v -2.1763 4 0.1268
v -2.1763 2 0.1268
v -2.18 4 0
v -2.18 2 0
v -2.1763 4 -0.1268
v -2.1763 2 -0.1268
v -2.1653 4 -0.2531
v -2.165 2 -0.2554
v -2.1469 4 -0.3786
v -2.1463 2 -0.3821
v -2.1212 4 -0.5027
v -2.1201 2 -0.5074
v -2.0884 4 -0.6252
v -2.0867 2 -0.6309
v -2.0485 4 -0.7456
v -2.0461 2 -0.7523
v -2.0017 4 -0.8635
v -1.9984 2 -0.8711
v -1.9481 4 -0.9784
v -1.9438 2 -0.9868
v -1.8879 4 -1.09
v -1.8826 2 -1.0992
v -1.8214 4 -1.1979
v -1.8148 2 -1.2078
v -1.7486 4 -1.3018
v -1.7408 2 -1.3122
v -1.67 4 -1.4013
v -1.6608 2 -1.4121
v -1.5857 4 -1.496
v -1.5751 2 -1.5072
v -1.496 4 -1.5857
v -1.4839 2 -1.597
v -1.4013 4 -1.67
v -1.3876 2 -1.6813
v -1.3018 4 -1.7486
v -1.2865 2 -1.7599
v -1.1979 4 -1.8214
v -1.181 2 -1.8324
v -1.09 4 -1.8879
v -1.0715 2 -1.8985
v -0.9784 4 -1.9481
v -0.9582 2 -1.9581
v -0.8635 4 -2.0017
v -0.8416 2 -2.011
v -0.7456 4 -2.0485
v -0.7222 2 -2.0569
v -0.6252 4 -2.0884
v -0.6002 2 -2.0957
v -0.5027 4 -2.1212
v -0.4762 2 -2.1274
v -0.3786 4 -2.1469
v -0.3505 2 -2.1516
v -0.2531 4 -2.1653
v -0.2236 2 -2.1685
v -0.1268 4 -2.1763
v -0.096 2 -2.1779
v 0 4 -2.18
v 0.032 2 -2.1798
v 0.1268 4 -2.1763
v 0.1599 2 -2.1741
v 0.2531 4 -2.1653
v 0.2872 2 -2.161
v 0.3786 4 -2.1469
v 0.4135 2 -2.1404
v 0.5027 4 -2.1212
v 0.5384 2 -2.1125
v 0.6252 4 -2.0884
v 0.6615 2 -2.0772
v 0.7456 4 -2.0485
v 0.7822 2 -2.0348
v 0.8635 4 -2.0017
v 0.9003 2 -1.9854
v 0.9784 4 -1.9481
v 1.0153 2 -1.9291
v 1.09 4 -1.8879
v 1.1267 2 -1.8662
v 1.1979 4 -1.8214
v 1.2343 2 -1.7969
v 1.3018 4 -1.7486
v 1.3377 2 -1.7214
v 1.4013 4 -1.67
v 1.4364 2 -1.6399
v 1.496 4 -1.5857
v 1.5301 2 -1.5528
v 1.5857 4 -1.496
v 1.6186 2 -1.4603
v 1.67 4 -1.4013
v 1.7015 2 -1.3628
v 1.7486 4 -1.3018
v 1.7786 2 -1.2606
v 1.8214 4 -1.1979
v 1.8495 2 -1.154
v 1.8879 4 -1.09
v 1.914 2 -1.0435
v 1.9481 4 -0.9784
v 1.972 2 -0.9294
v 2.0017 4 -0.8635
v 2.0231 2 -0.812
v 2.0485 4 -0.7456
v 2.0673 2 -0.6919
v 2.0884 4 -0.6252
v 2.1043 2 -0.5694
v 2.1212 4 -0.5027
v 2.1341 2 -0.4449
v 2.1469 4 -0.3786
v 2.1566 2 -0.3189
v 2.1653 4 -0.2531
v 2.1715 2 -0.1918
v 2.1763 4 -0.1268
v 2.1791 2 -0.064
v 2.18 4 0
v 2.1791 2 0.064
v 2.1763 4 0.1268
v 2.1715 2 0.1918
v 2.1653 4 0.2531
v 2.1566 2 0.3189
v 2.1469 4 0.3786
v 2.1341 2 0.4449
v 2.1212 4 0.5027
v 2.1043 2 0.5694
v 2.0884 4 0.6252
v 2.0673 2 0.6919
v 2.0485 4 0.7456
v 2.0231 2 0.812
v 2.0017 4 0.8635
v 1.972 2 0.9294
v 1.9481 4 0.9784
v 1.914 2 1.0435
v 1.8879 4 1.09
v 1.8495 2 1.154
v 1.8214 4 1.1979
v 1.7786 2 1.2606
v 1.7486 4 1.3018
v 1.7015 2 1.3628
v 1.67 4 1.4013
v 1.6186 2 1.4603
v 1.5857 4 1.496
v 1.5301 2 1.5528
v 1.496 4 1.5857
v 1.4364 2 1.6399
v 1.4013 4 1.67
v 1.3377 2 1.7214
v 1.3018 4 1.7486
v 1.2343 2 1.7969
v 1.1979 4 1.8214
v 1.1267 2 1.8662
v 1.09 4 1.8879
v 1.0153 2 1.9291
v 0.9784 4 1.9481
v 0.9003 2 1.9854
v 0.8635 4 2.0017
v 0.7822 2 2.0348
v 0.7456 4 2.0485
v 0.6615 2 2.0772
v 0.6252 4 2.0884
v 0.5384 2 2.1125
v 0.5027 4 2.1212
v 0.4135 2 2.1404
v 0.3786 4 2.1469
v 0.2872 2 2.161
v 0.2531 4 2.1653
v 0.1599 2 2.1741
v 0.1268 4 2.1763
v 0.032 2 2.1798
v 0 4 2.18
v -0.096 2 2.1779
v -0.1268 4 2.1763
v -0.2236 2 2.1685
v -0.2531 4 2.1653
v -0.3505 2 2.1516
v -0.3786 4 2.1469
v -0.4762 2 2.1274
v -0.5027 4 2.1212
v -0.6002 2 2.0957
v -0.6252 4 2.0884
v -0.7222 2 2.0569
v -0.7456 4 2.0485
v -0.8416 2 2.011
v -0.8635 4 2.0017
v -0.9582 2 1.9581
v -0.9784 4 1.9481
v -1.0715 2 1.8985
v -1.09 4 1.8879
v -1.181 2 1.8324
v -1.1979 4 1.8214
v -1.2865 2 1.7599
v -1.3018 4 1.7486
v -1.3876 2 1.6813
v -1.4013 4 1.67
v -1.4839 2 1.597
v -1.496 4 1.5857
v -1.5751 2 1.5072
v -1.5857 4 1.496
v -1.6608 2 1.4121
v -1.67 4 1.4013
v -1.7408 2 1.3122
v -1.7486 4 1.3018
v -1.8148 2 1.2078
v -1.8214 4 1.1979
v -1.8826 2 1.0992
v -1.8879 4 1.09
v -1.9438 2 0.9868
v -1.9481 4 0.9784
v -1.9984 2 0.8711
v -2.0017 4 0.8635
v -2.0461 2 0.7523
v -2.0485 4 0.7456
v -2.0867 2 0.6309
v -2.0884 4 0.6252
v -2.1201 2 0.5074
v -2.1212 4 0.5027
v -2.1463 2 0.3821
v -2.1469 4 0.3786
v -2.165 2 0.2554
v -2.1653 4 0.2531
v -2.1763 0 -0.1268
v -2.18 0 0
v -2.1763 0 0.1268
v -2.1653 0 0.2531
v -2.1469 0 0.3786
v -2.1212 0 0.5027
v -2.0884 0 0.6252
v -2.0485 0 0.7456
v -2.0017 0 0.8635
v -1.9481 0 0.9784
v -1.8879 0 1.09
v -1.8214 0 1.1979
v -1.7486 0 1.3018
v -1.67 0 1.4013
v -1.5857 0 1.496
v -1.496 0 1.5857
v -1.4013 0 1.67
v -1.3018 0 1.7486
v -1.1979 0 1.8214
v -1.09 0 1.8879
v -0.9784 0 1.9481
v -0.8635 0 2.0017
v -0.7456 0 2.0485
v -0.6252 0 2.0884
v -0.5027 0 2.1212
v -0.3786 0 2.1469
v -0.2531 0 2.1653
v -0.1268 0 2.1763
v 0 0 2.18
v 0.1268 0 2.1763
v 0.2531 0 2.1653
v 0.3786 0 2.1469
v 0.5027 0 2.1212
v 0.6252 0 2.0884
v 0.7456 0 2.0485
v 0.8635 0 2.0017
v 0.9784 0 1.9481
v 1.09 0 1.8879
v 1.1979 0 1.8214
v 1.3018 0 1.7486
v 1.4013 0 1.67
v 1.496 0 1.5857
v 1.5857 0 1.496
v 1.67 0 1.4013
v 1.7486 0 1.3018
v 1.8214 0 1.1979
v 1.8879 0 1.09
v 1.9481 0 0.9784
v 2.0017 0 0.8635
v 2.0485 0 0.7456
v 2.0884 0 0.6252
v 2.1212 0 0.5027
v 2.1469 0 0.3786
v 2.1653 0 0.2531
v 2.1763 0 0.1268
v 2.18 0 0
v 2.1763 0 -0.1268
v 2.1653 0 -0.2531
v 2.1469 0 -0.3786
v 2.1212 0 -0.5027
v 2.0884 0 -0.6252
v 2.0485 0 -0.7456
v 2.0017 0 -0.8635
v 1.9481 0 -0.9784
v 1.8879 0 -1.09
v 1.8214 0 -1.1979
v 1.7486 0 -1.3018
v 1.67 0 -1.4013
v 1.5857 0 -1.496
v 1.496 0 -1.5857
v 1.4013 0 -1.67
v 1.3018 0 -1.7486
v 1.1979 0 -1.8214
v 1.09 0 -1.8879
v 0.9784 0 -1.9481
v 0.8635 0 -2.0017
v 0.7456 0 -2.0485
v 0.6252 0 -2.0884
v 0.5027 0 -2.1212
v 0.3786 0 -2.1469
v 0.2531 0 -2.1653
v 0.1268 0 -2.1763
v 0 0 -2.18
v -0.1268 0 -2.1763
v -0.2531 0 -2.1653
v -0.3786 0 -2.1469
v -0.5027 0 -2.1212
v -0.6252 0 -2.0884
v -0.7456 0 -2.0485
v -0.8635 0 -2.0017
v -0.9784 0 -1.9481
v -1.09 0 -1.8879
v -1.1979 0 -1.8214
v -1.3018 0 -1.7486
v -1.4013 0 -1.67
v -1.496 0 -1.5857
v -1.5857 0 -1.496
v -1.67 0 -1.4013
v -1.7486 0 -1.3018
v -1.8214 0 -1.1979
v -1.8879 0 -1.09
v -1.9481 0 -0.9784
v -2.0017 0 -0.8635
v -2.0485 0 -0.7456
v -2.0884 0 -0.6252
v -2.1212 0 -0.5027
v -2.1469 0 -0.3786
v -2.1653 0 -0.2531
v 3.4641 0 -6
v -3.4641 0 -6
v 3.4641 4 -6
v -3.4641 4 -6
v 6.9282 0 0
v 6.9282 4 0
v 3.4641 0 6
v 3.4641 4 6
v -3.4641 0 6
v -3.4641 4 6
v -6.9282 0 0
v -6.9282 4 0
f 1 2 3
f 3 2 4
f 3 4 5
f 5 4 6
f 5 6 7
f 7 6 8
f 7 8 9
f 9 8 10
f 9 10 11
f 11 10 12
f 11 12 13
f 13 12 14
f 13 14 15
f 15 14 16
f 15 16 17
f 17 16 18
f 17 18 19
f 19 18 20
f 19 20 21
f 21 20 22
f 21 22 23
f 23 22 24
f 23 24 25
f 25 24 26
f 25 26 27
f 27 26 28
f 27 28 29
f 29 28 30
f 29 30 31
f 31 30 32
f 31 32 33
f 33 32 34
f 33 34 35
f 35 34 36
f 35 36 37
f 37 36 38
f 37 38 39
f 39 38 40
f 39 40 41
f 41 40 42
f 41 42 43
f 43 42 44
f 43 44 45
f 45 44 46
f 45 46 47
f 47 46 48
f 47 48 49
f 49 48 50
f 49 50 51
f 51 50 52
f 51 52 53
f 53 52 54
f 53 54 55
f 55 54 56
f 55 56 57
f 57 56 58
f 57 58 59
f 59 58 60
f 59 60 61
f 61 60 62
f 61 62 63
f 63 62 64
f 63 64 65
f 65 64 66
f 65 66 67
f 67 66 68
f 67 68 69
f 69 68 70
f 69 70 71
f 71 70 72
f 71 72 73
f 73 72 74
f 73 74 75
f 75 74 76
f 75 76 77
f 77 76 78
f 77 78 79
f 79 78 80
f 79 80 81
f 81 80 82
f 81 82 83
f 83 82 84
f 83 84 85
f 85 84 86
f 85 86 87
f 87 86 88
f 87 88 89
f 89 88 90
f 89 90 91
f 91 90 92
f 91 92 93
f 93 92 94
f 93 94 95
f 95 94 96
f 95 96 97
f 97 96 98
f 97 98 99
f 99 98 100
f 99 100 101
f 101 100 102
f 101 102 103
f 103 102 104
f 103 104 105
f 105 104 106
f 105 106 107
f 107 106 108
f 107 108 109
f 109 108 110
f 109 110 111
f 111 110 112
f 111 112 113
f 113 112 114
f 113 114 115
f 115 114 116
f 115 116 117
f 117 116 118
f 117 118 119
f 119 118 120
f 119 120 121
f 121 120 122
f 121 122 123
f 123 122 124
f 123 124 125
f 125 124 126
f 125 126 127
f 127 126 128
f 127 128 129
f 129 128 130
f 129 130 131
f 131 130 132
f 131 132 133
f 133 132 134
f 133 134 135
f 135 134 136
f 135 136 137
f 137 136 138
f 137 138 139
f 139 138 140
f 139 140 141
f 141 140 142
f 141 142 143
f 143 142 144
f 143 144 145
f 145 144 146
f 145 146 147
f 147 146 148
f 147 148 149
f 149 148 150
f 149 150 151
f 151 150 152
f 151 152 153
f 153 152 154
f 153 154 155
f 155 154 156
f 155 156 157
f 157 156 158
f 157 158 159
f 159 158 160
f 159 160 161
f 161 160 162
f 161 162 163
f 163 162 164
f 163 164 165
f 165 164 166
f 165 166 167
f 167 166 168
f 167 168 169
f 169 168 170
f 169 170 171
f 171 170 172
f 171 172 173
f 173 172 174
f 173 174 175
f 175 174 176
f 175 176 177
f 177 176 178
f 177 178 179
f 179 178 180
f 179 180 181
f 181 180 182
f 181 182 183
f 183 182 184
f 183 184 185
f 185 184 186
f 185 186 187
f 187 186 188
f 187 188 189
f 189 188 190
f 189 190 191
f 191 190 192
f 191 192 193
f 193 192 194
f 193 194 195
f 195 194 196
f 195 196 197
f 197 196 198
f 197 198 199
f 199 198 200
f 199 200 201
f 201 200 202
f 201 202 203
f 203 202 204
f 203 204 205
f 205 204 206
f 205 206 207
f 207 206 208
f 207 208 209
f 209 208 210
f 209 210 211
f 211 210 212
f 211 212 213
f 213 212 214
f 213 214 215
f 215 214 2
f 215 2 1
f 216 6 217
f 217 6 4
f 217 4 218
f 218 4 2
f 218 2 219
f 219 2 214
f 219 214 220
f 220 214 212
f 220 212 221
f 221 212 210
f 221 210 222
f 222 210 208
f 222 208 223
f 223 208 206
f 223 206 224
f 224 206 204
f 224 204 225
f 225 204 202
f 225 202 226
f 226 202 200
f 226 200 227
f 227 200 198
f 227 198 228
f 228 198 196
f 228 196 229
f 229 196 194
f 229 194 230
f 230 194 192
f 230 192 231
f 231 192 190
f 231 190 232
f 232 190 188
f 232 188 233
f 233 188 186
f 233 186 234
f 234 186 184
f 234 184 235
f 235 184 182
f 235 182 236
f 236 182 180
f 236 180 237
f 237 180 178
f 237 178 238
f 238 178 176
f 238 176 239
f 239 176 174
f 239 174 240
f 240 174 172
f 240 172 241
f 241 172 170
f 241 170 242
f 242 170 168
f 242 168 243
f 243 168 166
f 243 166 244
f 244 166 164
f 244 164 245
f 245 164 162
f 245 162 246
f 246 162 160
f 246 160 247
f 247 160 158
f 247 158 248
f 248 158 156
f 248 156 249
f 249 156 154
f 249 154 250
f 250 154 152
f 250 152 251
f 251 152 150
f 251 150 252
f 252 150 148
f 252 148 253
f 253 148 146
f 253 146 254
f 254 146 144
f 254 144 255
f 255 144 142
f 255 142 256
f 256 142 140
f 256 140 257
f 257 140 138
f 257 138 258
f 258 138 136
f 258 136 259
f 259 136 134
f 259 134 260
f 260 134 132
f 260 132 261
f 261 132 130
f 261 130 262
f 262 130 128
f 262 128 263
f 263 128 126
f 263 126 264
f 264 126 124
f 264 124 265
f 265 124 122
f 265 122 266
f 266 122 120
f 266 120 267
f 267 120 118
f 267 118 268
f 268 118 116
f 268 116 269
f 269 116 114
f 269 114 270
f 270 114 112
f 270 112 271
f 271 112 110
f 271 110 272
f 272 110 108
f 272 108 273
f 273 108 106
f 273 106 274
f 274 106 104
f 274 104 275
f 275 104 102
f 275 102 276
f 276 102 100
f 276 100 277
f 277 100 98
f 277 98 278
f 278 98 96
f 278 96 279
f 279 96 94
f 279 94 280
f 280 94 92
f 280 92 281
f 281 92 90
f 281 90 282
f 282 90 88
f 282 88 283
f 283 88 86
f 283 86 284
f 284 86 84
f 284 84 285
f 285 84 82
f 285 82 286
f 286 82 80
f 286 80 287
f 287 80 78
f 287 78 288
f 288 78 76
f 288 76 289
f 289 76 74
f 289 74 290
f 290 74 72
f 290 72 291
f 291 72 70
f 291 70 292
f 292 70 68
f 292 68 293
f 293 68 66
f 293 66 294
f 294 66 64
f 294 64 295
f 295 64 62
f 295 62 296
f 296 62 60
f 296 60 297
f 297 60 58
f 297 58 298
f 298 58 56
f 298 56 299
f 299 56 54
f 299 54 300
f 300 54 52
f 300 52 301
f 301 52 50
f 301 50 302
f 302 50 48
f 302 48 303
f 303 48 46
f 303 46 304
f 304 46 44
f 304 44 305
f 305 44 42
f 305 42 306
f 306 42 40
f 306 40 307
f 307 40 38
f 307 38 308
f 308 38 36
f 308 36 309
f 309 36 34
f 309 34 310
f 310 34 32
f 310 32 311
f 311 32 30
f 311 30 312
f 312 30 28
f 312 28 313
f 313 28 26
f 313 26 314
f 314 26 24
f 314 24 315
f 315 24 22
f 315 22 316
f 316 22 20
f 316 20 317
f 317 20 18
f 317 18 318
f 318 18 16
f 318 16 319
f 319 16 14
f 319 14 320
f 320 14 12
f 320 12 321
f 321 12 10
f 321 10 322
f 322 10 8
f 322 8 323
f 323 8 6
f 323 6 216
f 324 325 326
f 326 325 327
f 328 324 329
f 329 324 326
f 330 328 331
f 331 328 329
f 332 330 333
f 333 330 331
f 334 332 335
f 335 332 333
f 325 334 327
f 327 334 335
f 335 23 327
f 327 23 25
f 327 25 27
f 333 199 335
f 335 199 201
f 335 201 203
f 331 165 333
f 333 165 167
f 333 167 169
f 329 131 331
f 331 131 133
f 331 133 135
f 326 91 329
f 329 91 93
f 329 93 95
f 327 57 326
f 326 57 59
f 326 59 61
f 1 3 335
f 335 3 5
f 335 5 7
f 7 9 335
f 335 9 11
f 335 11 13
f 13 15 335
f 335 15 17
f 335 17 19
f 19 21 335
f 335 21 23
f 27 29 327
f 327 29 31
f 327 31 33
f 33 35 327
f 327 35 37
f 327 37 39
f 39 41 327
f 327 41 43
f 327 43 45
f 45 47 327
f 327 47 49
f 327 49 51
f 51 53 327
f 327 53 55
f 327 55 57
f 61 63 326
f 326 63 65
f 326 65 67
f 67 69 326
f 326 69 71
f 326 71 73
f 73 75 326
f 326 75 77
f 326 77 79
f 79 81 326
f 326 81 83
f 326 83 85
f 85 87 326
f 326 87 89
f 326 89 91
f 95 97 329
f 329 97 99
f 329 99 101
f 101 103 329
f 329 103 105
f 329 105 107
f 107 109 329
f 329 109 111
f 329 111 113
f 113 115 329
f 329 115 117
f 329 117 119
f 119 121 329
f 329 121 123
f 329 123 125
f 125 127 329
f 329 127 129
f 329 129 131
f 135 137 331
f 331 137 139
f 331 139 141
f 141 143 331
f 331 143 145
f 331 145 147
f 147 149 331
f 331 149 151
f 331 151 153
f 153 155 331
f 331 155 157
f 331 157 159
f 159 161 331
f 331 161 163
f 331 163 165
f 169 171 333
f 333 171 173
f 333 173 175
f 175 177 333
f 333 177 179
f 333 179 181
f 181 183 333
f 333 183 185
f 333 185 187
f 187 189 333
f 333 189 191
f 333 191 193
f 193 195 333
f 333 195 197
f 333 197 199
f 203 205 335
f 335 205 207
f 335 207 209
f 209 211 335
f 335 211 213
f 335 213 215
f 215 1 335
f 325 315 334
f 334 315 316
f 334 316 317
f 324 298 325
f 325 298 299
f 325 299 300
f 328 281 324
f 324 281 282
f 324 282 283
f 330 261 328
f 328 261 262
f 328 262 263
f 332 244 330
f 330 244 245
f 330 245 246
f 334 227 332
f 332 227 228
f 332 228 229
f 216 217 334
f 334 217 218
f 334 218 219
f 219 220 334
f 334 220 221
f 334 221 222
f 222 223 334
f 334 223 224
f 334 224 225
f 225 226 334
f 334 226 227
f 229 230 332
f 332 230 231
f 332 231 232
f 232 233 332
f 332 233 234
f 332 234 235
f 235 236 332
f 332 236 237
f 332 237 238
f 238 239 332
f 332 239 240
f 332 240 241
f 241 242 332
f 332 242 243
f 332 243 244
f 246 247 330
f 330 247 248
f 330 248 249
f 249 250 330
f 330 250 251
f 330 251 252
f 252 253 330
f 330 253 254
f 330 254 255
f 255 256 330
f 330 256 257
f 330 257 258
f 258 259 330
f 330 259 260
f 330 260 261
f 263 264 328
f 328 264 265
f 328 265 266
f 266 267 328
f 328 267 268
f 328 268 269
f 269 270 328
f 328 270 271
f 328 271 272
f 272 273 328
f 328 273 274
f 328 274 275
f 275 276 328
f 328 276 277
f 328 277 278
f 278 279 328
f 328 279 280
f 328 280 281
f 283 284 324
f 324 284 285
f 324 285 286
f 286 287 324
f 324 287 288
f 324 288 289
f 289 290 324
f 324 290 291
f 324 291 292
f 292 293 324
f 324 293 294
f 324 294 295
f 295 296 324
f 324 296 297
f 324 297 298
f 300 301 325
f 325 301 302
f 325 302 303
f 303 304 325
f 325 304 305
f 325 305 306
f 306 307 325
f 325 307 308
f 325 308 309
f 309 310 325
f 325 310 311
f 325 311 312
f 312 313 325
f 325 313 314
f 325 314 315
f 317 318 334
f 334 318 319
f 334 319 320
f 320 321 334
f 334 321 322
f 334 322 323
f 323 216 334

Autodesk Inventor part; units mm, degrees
ref_plane "YZ Plane" through (0, 0, 0) normal (1, 0, 0) x (0, 1, 0)
ref_plane "XZ Plane" through (0, 0, 0) normal (0, 1, 0) x (-1, 0, 0)
ref_plane "XY Plane" through (0, 0, 0) normal (0, 0, 1) x (1, 0, 0)
sketch "Sketch1" plane through (0, 0, 0) normal (0, 1, 0) x (-1, 0, 0)
  circle A0 centre (0, 0) radius 2
  line L0 (-3.4641, -6) -> (3.4641, -6)
  line L1 (3.4641, -6) -> (6.9282, 0)
  line L2 (6.9282, 0) -> (3.4641, 6)
  line L3 (3.4641, 6) -> (-3.4641, 6)
  line L4 (-3.4641, 6) -> (-6.9282, 0)
  line L5 (-6.9282, 0) -> (-3.4641, -6)
  line L6 (0, 6) -> (0, -6) construction
  line L7 (-5.1962, 3) -> (5.1962, -3) construction
  line L8 (-5.1962, -3) -> (5.1962, 3) construction
  point P0 (0, 0)
  dimension "d0" = 4
  dimension "d1" = 12
extrude "Extrusion1" add sketch "Sketch1" along normal blind 4
offset faces "Size1" outward -0.18 faces at (-1.9935, 2.6667, -0.1609)
properties part number "Front_Wheel_Support_Test"
